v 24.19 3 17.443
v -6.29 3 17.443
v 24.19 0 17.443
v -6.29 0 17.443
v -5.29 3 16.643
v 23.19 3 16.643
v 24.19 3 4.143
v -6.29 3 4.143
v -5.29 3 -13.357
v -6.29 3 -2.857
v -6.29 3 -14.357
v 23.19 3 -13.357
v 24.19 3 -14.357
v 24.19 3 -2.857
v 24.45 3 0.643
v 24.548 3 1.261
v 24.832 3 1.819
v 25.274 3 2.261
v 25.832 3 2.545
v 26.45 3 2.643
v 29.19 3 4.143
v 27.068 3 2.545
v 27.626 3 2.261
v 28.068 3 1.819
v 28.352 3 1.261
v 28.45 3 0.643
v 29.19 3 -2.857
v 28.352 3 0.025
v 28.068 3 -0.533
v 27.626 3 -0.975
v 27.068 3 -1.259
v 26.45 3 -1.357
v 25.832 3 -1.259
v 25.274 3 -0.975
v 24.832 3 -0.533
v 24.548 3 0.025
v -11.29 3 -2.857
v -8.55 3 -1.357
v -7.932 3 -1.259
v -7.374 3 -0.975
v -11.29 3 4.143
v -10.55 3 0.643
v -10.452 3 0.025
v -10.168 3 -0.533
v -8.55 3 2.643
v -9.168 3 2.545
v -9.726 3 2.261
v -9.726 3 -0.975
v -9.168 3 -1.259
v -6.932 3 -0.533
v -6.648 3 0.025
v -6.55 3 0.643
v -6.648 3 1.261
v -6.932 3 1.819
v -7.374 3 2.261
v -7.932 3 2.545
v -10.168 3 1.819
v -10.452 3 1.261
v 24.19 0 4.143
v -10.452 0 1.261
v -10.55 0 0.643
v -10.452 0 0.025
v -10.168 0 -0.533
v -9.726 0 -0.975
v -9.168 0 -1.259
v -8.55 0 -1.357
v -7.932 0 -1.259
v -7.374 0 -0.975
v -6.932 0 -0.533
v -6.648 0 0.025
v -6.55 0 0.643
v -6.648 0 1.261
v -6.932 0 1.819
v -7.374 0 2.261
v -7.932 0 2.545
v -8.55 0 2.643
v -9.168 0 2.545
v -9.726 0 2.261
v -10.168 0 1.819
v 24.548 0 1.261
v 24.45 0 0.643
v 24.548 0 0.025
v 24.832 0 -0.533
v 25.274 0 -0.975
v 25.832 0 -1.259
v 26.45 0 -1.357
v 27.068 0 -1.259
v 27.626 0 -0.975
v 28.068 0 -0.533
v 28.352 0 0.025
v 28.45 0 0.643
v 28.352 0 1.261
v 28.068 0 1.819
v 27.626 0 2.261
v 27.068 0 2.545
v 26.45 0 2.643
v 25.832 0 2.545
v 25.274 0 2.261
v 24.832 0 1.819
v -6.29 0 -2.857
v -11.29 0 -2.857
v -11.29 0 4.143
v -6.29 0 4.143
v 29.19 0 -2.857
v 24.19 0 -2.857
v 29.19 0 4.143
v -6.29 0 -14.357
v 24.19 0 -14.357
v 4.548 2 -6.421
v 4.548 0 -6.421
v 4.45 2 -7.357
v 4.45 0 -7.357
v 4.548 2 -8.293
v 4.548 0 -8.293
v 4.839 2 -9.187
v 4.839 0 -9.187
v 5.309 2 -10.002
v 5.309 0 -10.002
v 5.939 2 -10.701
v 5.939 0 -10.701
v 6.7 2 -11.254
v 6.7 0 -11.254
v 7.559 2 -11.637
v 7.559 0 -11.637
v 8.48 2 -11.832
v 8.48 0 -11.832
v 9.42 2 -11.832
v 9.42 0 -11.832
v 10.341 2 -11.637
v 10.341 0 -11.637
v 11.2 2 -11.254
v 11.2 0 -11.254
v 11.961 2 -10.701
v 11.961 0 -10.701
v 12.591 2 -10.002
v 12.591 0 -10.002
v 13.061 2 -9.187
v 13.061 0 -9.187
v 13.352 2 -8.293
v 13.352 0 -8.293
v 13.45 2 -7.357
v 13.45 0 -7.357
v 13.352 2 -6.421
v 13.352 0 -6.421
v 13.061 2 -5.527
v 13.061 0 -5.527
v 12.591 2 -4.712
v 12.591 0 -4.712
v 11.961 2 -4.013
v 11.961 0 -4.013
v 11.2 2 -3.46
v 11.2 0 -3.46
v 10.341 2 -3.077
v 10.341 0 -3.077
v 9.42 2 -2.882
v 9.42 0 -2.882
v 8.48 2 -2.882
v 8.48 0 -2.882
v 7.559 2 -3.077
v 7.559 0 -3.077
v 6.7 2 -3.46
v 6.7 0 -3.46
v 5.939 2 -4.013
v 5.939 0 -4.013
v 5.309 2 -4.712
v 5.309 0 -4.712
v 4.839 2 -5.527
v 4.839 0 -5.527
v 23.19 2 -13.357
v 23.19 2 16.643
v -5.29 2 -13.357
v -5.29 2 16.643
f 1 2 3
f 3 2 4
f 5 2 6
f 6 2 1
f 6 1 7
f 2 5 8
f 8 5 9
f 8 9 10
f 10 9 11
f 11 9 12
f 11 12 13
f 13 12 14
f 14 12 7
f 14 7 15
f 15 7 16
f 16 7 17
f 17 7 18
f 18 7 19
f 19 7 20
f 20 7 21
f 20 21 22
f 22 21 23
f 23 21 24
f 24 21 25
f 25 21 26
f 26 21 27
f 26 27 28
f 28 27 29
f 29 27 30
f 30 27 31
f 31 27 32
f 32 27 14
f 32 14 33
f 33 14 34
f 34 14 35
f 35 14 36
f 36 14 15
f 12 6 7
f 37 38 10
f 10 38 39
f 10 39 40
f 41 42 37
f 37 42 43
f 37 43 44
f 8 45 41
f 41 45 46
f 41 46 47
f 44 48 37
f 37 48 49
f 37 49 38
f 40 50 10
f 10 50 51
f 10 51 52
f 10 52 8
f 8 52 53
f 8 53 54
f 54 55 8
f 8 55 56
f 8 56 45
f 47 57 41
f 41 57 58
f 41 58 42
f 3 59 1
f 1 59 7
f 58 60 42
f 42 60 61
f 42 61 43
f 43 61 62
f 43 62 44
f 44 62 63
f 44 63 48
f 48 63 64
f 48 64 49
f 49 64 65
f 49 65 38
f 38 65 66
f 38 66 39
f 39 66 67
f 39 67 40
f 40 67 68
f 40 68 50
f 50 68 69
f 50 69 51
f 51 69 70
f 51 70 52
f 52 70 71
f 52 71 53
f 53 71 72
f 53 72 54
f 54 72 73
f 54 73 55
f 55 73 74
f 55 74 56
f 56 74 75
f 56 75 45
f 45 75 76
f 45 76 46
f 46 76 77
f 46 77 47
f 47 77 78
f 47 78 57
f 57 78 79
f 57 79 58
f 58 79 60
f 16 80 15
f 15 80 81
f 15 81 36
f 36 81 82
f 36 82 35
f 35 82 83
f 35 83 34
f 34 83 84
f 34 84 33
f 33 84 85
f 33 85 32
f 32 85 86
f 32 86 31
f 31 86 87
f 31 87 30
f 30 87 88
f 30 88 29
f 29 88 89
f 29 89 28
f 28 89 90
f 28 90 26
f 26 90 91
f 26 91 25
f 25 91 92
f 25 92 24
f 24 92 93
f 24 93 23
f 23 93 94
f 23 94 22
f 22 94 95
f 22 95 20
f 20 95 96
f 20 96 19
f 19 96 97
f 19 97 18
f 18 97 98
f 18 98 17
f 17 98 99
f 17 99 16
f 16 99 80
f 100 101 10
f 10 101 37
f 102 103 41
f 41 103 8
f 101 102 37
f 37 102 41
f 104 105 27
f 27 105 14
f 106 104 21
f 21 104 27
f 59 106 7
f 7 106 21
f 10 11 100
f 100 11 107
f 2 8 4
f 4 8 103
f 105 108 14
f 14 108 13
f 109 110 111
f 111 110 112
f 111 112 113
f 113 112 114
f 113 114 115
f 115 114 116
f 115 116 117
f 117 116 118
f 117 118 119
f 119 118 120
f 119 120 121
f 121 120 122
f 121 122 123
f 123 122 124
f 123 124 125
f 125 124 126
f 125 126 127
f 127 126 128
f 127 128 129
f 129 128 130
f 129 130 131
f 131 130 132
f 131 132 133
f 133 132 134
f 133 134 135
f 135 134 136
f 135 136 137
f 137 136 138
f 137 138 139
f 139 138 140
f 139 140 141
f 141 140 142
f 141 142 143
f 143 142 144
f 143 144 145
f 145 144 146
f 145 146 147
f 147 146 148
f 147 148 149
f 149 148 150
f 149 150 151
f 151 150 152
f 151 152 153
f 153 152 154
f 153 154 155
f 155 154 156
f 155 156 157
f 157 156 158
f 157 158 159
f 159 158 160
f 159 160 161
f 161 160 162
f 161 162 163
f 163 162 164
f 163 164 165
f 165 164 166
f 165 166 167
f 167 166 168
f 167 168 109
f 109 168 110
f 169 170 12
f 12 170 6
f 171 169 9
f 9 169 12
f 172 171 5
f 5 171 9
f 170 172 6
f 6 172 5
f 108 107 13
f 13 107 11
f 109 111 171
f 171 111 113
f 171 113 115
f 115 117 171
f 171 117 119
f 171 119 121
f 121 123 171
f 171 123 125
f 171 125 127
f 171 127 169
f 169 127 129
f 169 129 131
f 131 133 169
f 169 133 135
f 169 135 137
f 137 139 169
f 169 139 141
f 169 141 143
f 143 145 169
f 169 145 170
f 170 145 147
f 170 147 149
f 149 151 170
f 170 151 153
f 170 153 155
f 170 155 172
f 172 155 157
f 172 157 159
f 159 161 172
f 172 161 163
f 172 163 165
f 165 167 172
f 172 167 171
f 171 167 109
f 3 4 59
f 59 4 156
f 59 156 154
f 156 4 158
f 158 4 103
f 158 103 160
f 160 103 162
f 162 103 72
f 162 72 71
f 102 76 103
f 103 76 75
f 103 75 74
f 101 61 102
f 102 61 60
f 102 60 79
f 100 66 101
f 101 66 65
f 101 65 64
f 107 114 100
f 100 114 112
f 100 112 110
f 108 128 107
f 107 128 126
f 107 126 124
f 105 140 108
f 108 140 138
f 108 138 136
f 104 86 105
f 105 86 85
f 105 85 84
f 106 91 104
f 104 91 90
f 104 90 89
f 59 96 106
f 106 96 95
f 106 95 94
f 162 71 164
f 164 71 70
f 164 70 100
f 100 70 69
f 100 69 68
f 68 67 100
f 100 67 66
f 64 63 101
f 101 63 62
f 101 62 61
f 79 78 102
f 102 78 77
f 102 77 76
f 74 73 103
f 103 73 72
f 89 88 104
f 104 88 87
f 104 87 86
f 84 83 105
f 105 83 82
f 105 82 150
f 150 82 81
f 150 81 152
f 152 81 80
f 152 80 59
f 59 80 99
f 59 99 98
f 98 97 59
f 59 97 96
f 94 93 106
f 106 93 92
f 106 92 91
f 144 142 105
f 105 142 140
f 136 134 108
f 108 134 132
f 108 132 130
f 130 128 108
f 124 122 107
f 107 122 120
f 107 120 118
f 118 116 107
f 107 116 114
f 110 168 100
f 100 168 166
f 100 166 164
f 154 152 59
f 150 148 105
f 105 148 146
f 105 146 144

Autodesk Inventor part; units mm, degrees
ref_plane "YZ Plane" through (0, 0, 0) normal (1, 0, 0) x (0, 1, 0)
ref_plane "XZ Plane" through (0, 0, 0) normal (0, 1, 0) x (-1, 0, 0)
ref_plane "XY Plane" through (0, 0, 0) normal (0, 0, 1) x (1, 0, 0)
sketch "Sketch1" plane through (0, 0, 0) normal (0, 1, 0) x (-1, 0, 0)
  line L0 (6.29, 17.6429) -> (-24.19, 17.6429)
  line L1 (-24.19, 17.6429) -> (-24.19, -14.3571)
  line L2 (-24.19, -14.3571) -> (6.29, -14.3571)
  line L3 (6.29, -14.3571) -> (6.29, 17.6429)
  point P0 (0, 0)
  dimension "d0" = 30.48
  dimension "d1" = 32
extrude "Extrusion1" add sketch "Sketch1" along normal blind 2
sketch "Sketch3" plane through (0, 2, 0) normal (0, 1, 0) x (1, 0, 0)
  line L0 (-6.29, -17.6429) -> (24.19, -17.6429) projected
  line L1 (-6.29, -17.6429) -> (-6.29, -16.6429)
  line L2 (-6.29, 14.3571) -> (-6.29, -17.6429) projected
  line L3 (-6.29, -16.6429) -> (-5.29, -16.6429)
  line L4 (-5.29, -16.6429) -> (-5.29, 13.3571)
  line L5 (24.19, 14.3571) -> (-6.29, 14.3571) projected
  line L6 (24.19, -17.6429) -> (24.19, 14.3571) projected
  line L7 (24.19, -17.6429) -> (23.19, -17.6429)
  line L8 (23.19, -17.6429) -> (23.19, -16.6429)
  line L9 (23.19, -16.6429) -> (23.19, 3.3571)
  line L10 (23.19, -16.6429) -> (-5.29, -16.6429)
  line L11 (-5.29, -16.6429) -> (-5.29, 13.3571)
  line L12 (-5.29, 13.3571) -> (23.19, 13.3571)
  line L13 (23.19, 13.3571) -> (23.19, -16.6429)
  point P0 (0, 0)
  dimension "d4" = 1
  dimension "d5" = 1
  dimension "d6" = 30
  dimension "d7" = 1
extrude "Extrusion3" add sketch "Sketch3" along normal blind 1 contours L1 L3 L10 L8 L0 | L8 L9 L13 L12 L4 L3 L2 L5 L6 L0
sketch "Sketch4" plane through (0, 0, 0) normal (0, -1, 0) x (1, 0, 0)
  line L0 (24.19, -14.3571) -> (-6.29, -14.3571) projected
  line L1 (8.95, -14.3571) -> (8.95, -7.3571)
  point P0 (0, 0)
  dimension "d12" = 7
hole "Hole1" at (8.95, 0, -7.3571) direction (0, 1, 0) diameter 9 end through all
sketch "Sketch5" plane through (0, 3, 0) normal (0, 1, 0) x (1, 0, 0)
  line L0 (-6.29, -17.6429) -> (24.19, -17.6429) projected
  line L1 (8.95, -17.6429) -> (8.95, -0.6429)
  line L2 (8.95, -0.6429) -> (24.19, -0.6429)
  line L3 (24.19, -17.6429) -> (24.19, 14.3571) projected
  line L4 (24.19, -0.6429) -> (24.19, -4.1429)
  line L5 (24.19, -4.1429) -> (23.19, -4.1429)
  line L6 (23.19, -16.6429) -> (23.19, 13.3571) projected
  line L7 (23.19, -4.1429) -> (23.19, 2.8571)
  line L8 (23.19, 2.8571) -> (24.19, 2.8571)
  line L9 (24.19, 2.8571) -> (24.19, -4.1429)
  line L10 (-5.29, -16.6429) -> (-5.29, 13.3571) projected
  line L11 (-5.29, -0.6429) -> (-5.29, -4.1429)
  line L12 (-5.29, -4.1429) -> (-6.29, -4.1429)
  line L13 (-6.29, 14.3571) -> (-6.29, -17.6429) projected
  line L14 (-6.29, -4.1429) -> (-6.29, 2.8571)
  line L15 (-6.29, 2.8571) -> (-5.29, 2.8571)
  line L16 (-5.29, -0.6429) -> (-5.29, 2.8571)
  point P0 (0, 0)
  dimension "d20" = 17
  dimension "d21" = 3.5
  dimension "d22" = 7
  dimension "d23" = 7
sketch "Sketch6" plane through (0, 0, 0) normal (0, -1, 0) x (1, 0, 0)
  line L0 (-5.29, 4.1429) -> (-6.29, 4.1429) projected
  line L1 (-6.29, -2.8571) -> (-5.29, -2.8571) projected
  line L2 (23.19, -2.8571) -> (24.19, -2.8571) projected
  line L3 (24.19, 4.1429) -> (23.19, 4.1429) projected
  line L4 (-5.29, -13.3571) -> (-5.29, 16.6429) projected
  line L5 (-6.29, -14.3571) -> (-6.29, 17.6429) projected
  line L6 (23.19, 16.6429) -> (23.19, -13.3571) projected
  line L7 (24.19, 17.6429) -> (24.19, -14.3571) projected
  line L8 (24.19, 4.1429) -> (29.19, 4.1429)
  line L9 (29.19, 4.1429) -> (29.19, -2.8571)
  line L10 (29.19, -2.8571) -> (24.19, -2.8571)
  line L11 (-6.29, -2.8571) -> (-11.29, -2.8571)
  line L12 (-11.29, -2.8571) -> (-11.29, 4.1429)
  line L13 (-11.29, 4.1429) -> (-6.29, 4.1429)
  point P0 (0, 0)
  dimension "d26" = 5
  dimension "d27" = 5
extrude "Extrusion5" add sketch "Sketch6" against normal blind 3 contours L5 L11 L12 L13 | L7 L8 L9 L10
sketch "Sketch7" plane through (0, 0, 0) normal (0, -1, 0) x (1, 0, 0)
  line L0 (-6.29, 17.6429) -> (24.19, 17.6429) projected
  line L1 (8.95, 17.6429) -> (8.95, 0.6429)
  line L2 (8.95, 0.6429) -> (26.45, 0.6429)
  line L3 (26.45, 0.6429) -> (-8.55, 0.6429)
  point P0 (0, 0)
  dimension "d30" = 17
  dimension "d31" = 17.5
  dimension "d32" = 35
hole "Hole2" at (-8.55, 0, 0.6429) at (26.45, 0, 0.6429) direction (0, 1, 0) diameter 4 end through all
sketch "Sketch8" plane through (-6.29, 0, 17.6429) normal (0, 0, 1) x (1, 0, 0)
  line L0 (0, 0) -> (0, 3) projected
  line L1 (1, 3) -> (0, 3) projected
  line L2 (1, 3) -> (1, 3.5) projected
  line L3 (0, 3.5) -> (1, 3.5) projected
  line L4 (-5, 0) -> (-5, 3.25) projected
  line L5 (0, 0) -> (-5, 0) projected
  line L6 (0, 3) -> (0, 0) projected
  line L7 (0, 0) -> (30.48, 0) projected
  line L8 (30.48, 0) -> (30.48, 3) projected
  line L9 (0, 3) -> (30.48, 3) projected
  line L10 (0, 0) -> (0, 3) projected
  line L11 (0, 3.25) -> (0, 3.5) projected
  line L12 (-5, 3.25) -> (0, 3.25) projected
  point P0 (6.29, 0)
extrude "Extrusion6" cut sketch "Sketch8" against normal blind 0.2 contours L0 L1 L9 L8 L7
properties part number "sheel"
